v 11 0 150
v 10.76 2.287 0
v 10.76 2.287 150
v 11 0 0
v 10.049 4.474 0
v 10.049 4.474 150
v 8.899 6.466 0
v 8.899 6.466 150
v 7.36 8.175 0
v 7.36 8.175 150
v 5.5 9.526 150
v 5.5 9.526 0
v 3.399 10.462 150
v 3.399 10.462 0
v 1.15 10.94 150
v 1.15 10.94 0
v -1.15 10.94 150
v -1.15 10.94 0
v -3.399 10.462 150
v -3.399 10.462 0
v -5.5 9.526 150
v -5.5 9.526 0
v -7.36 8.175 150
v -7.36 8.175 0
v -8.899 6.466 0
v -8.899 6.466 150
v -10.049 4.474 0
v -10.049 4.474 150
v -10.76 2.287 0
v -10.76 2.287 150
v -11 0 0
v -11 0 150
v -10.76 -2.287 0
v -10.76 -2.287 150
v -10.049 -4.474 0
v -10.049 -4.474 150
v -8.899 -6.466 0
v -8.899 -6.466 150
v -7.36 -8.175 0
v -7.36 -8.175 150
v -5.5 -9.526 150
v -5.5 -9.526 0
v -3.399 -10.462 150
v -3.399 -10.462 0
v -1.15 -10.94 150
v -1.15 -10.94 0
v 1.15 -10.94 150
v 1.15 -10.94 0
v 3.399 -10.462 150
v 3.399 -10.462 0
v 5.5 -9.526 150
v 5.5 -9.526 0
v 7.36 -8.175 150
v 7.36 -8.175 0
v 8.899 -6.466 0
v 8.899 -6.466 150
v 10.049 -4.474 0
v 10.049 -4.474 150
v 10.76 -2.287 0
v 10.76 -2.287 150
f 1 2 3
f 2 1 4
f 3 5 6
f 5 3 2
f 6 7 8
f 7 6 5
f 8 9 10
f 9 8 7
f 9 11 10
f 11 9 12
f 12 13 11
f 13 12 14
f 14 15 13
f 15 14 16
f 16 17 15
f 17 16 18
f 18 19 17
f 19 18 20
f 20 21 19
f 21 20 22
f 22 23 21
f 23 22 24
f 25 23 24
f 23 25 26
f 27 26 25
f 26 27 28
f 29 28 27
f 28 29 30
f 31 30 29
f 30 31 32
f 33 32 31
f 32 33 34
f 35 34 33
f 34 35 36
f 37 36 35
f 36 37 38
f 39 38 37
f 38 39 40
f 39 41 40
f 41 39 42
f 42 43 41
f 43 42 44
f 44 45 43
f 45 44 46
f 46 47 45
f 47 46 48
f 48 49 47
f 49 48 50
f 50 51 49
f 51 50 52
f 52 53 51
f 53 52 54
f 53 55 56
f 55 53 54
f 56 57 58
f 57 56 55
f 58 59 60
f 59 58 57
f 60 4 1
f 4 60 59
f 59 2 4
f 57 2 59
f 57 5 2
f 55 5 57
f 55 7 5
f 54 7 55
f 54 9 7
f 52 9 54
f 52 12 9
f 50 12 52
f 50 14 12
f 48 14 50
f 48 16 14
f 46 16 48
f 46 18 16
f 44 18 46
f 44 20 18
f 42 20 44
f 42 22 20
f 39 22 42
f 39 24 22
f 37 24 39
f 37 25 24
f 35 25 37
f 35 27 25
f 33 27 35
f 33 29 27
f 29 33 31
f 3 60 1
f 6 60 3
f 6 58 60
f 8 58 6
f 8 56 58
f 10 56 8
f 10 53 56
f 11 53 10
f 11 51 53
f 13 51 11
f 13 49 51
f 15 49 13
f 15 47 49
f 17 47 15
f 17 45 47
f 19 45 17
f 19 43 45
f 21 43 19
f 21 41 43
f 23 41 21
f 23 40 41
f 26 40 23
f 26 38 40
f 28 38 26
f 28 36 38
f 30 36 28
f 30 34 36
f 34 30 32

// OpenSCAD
height = 150; // mm
radius = 22; // mm

cylinder(r=radius/2 , h=height);
